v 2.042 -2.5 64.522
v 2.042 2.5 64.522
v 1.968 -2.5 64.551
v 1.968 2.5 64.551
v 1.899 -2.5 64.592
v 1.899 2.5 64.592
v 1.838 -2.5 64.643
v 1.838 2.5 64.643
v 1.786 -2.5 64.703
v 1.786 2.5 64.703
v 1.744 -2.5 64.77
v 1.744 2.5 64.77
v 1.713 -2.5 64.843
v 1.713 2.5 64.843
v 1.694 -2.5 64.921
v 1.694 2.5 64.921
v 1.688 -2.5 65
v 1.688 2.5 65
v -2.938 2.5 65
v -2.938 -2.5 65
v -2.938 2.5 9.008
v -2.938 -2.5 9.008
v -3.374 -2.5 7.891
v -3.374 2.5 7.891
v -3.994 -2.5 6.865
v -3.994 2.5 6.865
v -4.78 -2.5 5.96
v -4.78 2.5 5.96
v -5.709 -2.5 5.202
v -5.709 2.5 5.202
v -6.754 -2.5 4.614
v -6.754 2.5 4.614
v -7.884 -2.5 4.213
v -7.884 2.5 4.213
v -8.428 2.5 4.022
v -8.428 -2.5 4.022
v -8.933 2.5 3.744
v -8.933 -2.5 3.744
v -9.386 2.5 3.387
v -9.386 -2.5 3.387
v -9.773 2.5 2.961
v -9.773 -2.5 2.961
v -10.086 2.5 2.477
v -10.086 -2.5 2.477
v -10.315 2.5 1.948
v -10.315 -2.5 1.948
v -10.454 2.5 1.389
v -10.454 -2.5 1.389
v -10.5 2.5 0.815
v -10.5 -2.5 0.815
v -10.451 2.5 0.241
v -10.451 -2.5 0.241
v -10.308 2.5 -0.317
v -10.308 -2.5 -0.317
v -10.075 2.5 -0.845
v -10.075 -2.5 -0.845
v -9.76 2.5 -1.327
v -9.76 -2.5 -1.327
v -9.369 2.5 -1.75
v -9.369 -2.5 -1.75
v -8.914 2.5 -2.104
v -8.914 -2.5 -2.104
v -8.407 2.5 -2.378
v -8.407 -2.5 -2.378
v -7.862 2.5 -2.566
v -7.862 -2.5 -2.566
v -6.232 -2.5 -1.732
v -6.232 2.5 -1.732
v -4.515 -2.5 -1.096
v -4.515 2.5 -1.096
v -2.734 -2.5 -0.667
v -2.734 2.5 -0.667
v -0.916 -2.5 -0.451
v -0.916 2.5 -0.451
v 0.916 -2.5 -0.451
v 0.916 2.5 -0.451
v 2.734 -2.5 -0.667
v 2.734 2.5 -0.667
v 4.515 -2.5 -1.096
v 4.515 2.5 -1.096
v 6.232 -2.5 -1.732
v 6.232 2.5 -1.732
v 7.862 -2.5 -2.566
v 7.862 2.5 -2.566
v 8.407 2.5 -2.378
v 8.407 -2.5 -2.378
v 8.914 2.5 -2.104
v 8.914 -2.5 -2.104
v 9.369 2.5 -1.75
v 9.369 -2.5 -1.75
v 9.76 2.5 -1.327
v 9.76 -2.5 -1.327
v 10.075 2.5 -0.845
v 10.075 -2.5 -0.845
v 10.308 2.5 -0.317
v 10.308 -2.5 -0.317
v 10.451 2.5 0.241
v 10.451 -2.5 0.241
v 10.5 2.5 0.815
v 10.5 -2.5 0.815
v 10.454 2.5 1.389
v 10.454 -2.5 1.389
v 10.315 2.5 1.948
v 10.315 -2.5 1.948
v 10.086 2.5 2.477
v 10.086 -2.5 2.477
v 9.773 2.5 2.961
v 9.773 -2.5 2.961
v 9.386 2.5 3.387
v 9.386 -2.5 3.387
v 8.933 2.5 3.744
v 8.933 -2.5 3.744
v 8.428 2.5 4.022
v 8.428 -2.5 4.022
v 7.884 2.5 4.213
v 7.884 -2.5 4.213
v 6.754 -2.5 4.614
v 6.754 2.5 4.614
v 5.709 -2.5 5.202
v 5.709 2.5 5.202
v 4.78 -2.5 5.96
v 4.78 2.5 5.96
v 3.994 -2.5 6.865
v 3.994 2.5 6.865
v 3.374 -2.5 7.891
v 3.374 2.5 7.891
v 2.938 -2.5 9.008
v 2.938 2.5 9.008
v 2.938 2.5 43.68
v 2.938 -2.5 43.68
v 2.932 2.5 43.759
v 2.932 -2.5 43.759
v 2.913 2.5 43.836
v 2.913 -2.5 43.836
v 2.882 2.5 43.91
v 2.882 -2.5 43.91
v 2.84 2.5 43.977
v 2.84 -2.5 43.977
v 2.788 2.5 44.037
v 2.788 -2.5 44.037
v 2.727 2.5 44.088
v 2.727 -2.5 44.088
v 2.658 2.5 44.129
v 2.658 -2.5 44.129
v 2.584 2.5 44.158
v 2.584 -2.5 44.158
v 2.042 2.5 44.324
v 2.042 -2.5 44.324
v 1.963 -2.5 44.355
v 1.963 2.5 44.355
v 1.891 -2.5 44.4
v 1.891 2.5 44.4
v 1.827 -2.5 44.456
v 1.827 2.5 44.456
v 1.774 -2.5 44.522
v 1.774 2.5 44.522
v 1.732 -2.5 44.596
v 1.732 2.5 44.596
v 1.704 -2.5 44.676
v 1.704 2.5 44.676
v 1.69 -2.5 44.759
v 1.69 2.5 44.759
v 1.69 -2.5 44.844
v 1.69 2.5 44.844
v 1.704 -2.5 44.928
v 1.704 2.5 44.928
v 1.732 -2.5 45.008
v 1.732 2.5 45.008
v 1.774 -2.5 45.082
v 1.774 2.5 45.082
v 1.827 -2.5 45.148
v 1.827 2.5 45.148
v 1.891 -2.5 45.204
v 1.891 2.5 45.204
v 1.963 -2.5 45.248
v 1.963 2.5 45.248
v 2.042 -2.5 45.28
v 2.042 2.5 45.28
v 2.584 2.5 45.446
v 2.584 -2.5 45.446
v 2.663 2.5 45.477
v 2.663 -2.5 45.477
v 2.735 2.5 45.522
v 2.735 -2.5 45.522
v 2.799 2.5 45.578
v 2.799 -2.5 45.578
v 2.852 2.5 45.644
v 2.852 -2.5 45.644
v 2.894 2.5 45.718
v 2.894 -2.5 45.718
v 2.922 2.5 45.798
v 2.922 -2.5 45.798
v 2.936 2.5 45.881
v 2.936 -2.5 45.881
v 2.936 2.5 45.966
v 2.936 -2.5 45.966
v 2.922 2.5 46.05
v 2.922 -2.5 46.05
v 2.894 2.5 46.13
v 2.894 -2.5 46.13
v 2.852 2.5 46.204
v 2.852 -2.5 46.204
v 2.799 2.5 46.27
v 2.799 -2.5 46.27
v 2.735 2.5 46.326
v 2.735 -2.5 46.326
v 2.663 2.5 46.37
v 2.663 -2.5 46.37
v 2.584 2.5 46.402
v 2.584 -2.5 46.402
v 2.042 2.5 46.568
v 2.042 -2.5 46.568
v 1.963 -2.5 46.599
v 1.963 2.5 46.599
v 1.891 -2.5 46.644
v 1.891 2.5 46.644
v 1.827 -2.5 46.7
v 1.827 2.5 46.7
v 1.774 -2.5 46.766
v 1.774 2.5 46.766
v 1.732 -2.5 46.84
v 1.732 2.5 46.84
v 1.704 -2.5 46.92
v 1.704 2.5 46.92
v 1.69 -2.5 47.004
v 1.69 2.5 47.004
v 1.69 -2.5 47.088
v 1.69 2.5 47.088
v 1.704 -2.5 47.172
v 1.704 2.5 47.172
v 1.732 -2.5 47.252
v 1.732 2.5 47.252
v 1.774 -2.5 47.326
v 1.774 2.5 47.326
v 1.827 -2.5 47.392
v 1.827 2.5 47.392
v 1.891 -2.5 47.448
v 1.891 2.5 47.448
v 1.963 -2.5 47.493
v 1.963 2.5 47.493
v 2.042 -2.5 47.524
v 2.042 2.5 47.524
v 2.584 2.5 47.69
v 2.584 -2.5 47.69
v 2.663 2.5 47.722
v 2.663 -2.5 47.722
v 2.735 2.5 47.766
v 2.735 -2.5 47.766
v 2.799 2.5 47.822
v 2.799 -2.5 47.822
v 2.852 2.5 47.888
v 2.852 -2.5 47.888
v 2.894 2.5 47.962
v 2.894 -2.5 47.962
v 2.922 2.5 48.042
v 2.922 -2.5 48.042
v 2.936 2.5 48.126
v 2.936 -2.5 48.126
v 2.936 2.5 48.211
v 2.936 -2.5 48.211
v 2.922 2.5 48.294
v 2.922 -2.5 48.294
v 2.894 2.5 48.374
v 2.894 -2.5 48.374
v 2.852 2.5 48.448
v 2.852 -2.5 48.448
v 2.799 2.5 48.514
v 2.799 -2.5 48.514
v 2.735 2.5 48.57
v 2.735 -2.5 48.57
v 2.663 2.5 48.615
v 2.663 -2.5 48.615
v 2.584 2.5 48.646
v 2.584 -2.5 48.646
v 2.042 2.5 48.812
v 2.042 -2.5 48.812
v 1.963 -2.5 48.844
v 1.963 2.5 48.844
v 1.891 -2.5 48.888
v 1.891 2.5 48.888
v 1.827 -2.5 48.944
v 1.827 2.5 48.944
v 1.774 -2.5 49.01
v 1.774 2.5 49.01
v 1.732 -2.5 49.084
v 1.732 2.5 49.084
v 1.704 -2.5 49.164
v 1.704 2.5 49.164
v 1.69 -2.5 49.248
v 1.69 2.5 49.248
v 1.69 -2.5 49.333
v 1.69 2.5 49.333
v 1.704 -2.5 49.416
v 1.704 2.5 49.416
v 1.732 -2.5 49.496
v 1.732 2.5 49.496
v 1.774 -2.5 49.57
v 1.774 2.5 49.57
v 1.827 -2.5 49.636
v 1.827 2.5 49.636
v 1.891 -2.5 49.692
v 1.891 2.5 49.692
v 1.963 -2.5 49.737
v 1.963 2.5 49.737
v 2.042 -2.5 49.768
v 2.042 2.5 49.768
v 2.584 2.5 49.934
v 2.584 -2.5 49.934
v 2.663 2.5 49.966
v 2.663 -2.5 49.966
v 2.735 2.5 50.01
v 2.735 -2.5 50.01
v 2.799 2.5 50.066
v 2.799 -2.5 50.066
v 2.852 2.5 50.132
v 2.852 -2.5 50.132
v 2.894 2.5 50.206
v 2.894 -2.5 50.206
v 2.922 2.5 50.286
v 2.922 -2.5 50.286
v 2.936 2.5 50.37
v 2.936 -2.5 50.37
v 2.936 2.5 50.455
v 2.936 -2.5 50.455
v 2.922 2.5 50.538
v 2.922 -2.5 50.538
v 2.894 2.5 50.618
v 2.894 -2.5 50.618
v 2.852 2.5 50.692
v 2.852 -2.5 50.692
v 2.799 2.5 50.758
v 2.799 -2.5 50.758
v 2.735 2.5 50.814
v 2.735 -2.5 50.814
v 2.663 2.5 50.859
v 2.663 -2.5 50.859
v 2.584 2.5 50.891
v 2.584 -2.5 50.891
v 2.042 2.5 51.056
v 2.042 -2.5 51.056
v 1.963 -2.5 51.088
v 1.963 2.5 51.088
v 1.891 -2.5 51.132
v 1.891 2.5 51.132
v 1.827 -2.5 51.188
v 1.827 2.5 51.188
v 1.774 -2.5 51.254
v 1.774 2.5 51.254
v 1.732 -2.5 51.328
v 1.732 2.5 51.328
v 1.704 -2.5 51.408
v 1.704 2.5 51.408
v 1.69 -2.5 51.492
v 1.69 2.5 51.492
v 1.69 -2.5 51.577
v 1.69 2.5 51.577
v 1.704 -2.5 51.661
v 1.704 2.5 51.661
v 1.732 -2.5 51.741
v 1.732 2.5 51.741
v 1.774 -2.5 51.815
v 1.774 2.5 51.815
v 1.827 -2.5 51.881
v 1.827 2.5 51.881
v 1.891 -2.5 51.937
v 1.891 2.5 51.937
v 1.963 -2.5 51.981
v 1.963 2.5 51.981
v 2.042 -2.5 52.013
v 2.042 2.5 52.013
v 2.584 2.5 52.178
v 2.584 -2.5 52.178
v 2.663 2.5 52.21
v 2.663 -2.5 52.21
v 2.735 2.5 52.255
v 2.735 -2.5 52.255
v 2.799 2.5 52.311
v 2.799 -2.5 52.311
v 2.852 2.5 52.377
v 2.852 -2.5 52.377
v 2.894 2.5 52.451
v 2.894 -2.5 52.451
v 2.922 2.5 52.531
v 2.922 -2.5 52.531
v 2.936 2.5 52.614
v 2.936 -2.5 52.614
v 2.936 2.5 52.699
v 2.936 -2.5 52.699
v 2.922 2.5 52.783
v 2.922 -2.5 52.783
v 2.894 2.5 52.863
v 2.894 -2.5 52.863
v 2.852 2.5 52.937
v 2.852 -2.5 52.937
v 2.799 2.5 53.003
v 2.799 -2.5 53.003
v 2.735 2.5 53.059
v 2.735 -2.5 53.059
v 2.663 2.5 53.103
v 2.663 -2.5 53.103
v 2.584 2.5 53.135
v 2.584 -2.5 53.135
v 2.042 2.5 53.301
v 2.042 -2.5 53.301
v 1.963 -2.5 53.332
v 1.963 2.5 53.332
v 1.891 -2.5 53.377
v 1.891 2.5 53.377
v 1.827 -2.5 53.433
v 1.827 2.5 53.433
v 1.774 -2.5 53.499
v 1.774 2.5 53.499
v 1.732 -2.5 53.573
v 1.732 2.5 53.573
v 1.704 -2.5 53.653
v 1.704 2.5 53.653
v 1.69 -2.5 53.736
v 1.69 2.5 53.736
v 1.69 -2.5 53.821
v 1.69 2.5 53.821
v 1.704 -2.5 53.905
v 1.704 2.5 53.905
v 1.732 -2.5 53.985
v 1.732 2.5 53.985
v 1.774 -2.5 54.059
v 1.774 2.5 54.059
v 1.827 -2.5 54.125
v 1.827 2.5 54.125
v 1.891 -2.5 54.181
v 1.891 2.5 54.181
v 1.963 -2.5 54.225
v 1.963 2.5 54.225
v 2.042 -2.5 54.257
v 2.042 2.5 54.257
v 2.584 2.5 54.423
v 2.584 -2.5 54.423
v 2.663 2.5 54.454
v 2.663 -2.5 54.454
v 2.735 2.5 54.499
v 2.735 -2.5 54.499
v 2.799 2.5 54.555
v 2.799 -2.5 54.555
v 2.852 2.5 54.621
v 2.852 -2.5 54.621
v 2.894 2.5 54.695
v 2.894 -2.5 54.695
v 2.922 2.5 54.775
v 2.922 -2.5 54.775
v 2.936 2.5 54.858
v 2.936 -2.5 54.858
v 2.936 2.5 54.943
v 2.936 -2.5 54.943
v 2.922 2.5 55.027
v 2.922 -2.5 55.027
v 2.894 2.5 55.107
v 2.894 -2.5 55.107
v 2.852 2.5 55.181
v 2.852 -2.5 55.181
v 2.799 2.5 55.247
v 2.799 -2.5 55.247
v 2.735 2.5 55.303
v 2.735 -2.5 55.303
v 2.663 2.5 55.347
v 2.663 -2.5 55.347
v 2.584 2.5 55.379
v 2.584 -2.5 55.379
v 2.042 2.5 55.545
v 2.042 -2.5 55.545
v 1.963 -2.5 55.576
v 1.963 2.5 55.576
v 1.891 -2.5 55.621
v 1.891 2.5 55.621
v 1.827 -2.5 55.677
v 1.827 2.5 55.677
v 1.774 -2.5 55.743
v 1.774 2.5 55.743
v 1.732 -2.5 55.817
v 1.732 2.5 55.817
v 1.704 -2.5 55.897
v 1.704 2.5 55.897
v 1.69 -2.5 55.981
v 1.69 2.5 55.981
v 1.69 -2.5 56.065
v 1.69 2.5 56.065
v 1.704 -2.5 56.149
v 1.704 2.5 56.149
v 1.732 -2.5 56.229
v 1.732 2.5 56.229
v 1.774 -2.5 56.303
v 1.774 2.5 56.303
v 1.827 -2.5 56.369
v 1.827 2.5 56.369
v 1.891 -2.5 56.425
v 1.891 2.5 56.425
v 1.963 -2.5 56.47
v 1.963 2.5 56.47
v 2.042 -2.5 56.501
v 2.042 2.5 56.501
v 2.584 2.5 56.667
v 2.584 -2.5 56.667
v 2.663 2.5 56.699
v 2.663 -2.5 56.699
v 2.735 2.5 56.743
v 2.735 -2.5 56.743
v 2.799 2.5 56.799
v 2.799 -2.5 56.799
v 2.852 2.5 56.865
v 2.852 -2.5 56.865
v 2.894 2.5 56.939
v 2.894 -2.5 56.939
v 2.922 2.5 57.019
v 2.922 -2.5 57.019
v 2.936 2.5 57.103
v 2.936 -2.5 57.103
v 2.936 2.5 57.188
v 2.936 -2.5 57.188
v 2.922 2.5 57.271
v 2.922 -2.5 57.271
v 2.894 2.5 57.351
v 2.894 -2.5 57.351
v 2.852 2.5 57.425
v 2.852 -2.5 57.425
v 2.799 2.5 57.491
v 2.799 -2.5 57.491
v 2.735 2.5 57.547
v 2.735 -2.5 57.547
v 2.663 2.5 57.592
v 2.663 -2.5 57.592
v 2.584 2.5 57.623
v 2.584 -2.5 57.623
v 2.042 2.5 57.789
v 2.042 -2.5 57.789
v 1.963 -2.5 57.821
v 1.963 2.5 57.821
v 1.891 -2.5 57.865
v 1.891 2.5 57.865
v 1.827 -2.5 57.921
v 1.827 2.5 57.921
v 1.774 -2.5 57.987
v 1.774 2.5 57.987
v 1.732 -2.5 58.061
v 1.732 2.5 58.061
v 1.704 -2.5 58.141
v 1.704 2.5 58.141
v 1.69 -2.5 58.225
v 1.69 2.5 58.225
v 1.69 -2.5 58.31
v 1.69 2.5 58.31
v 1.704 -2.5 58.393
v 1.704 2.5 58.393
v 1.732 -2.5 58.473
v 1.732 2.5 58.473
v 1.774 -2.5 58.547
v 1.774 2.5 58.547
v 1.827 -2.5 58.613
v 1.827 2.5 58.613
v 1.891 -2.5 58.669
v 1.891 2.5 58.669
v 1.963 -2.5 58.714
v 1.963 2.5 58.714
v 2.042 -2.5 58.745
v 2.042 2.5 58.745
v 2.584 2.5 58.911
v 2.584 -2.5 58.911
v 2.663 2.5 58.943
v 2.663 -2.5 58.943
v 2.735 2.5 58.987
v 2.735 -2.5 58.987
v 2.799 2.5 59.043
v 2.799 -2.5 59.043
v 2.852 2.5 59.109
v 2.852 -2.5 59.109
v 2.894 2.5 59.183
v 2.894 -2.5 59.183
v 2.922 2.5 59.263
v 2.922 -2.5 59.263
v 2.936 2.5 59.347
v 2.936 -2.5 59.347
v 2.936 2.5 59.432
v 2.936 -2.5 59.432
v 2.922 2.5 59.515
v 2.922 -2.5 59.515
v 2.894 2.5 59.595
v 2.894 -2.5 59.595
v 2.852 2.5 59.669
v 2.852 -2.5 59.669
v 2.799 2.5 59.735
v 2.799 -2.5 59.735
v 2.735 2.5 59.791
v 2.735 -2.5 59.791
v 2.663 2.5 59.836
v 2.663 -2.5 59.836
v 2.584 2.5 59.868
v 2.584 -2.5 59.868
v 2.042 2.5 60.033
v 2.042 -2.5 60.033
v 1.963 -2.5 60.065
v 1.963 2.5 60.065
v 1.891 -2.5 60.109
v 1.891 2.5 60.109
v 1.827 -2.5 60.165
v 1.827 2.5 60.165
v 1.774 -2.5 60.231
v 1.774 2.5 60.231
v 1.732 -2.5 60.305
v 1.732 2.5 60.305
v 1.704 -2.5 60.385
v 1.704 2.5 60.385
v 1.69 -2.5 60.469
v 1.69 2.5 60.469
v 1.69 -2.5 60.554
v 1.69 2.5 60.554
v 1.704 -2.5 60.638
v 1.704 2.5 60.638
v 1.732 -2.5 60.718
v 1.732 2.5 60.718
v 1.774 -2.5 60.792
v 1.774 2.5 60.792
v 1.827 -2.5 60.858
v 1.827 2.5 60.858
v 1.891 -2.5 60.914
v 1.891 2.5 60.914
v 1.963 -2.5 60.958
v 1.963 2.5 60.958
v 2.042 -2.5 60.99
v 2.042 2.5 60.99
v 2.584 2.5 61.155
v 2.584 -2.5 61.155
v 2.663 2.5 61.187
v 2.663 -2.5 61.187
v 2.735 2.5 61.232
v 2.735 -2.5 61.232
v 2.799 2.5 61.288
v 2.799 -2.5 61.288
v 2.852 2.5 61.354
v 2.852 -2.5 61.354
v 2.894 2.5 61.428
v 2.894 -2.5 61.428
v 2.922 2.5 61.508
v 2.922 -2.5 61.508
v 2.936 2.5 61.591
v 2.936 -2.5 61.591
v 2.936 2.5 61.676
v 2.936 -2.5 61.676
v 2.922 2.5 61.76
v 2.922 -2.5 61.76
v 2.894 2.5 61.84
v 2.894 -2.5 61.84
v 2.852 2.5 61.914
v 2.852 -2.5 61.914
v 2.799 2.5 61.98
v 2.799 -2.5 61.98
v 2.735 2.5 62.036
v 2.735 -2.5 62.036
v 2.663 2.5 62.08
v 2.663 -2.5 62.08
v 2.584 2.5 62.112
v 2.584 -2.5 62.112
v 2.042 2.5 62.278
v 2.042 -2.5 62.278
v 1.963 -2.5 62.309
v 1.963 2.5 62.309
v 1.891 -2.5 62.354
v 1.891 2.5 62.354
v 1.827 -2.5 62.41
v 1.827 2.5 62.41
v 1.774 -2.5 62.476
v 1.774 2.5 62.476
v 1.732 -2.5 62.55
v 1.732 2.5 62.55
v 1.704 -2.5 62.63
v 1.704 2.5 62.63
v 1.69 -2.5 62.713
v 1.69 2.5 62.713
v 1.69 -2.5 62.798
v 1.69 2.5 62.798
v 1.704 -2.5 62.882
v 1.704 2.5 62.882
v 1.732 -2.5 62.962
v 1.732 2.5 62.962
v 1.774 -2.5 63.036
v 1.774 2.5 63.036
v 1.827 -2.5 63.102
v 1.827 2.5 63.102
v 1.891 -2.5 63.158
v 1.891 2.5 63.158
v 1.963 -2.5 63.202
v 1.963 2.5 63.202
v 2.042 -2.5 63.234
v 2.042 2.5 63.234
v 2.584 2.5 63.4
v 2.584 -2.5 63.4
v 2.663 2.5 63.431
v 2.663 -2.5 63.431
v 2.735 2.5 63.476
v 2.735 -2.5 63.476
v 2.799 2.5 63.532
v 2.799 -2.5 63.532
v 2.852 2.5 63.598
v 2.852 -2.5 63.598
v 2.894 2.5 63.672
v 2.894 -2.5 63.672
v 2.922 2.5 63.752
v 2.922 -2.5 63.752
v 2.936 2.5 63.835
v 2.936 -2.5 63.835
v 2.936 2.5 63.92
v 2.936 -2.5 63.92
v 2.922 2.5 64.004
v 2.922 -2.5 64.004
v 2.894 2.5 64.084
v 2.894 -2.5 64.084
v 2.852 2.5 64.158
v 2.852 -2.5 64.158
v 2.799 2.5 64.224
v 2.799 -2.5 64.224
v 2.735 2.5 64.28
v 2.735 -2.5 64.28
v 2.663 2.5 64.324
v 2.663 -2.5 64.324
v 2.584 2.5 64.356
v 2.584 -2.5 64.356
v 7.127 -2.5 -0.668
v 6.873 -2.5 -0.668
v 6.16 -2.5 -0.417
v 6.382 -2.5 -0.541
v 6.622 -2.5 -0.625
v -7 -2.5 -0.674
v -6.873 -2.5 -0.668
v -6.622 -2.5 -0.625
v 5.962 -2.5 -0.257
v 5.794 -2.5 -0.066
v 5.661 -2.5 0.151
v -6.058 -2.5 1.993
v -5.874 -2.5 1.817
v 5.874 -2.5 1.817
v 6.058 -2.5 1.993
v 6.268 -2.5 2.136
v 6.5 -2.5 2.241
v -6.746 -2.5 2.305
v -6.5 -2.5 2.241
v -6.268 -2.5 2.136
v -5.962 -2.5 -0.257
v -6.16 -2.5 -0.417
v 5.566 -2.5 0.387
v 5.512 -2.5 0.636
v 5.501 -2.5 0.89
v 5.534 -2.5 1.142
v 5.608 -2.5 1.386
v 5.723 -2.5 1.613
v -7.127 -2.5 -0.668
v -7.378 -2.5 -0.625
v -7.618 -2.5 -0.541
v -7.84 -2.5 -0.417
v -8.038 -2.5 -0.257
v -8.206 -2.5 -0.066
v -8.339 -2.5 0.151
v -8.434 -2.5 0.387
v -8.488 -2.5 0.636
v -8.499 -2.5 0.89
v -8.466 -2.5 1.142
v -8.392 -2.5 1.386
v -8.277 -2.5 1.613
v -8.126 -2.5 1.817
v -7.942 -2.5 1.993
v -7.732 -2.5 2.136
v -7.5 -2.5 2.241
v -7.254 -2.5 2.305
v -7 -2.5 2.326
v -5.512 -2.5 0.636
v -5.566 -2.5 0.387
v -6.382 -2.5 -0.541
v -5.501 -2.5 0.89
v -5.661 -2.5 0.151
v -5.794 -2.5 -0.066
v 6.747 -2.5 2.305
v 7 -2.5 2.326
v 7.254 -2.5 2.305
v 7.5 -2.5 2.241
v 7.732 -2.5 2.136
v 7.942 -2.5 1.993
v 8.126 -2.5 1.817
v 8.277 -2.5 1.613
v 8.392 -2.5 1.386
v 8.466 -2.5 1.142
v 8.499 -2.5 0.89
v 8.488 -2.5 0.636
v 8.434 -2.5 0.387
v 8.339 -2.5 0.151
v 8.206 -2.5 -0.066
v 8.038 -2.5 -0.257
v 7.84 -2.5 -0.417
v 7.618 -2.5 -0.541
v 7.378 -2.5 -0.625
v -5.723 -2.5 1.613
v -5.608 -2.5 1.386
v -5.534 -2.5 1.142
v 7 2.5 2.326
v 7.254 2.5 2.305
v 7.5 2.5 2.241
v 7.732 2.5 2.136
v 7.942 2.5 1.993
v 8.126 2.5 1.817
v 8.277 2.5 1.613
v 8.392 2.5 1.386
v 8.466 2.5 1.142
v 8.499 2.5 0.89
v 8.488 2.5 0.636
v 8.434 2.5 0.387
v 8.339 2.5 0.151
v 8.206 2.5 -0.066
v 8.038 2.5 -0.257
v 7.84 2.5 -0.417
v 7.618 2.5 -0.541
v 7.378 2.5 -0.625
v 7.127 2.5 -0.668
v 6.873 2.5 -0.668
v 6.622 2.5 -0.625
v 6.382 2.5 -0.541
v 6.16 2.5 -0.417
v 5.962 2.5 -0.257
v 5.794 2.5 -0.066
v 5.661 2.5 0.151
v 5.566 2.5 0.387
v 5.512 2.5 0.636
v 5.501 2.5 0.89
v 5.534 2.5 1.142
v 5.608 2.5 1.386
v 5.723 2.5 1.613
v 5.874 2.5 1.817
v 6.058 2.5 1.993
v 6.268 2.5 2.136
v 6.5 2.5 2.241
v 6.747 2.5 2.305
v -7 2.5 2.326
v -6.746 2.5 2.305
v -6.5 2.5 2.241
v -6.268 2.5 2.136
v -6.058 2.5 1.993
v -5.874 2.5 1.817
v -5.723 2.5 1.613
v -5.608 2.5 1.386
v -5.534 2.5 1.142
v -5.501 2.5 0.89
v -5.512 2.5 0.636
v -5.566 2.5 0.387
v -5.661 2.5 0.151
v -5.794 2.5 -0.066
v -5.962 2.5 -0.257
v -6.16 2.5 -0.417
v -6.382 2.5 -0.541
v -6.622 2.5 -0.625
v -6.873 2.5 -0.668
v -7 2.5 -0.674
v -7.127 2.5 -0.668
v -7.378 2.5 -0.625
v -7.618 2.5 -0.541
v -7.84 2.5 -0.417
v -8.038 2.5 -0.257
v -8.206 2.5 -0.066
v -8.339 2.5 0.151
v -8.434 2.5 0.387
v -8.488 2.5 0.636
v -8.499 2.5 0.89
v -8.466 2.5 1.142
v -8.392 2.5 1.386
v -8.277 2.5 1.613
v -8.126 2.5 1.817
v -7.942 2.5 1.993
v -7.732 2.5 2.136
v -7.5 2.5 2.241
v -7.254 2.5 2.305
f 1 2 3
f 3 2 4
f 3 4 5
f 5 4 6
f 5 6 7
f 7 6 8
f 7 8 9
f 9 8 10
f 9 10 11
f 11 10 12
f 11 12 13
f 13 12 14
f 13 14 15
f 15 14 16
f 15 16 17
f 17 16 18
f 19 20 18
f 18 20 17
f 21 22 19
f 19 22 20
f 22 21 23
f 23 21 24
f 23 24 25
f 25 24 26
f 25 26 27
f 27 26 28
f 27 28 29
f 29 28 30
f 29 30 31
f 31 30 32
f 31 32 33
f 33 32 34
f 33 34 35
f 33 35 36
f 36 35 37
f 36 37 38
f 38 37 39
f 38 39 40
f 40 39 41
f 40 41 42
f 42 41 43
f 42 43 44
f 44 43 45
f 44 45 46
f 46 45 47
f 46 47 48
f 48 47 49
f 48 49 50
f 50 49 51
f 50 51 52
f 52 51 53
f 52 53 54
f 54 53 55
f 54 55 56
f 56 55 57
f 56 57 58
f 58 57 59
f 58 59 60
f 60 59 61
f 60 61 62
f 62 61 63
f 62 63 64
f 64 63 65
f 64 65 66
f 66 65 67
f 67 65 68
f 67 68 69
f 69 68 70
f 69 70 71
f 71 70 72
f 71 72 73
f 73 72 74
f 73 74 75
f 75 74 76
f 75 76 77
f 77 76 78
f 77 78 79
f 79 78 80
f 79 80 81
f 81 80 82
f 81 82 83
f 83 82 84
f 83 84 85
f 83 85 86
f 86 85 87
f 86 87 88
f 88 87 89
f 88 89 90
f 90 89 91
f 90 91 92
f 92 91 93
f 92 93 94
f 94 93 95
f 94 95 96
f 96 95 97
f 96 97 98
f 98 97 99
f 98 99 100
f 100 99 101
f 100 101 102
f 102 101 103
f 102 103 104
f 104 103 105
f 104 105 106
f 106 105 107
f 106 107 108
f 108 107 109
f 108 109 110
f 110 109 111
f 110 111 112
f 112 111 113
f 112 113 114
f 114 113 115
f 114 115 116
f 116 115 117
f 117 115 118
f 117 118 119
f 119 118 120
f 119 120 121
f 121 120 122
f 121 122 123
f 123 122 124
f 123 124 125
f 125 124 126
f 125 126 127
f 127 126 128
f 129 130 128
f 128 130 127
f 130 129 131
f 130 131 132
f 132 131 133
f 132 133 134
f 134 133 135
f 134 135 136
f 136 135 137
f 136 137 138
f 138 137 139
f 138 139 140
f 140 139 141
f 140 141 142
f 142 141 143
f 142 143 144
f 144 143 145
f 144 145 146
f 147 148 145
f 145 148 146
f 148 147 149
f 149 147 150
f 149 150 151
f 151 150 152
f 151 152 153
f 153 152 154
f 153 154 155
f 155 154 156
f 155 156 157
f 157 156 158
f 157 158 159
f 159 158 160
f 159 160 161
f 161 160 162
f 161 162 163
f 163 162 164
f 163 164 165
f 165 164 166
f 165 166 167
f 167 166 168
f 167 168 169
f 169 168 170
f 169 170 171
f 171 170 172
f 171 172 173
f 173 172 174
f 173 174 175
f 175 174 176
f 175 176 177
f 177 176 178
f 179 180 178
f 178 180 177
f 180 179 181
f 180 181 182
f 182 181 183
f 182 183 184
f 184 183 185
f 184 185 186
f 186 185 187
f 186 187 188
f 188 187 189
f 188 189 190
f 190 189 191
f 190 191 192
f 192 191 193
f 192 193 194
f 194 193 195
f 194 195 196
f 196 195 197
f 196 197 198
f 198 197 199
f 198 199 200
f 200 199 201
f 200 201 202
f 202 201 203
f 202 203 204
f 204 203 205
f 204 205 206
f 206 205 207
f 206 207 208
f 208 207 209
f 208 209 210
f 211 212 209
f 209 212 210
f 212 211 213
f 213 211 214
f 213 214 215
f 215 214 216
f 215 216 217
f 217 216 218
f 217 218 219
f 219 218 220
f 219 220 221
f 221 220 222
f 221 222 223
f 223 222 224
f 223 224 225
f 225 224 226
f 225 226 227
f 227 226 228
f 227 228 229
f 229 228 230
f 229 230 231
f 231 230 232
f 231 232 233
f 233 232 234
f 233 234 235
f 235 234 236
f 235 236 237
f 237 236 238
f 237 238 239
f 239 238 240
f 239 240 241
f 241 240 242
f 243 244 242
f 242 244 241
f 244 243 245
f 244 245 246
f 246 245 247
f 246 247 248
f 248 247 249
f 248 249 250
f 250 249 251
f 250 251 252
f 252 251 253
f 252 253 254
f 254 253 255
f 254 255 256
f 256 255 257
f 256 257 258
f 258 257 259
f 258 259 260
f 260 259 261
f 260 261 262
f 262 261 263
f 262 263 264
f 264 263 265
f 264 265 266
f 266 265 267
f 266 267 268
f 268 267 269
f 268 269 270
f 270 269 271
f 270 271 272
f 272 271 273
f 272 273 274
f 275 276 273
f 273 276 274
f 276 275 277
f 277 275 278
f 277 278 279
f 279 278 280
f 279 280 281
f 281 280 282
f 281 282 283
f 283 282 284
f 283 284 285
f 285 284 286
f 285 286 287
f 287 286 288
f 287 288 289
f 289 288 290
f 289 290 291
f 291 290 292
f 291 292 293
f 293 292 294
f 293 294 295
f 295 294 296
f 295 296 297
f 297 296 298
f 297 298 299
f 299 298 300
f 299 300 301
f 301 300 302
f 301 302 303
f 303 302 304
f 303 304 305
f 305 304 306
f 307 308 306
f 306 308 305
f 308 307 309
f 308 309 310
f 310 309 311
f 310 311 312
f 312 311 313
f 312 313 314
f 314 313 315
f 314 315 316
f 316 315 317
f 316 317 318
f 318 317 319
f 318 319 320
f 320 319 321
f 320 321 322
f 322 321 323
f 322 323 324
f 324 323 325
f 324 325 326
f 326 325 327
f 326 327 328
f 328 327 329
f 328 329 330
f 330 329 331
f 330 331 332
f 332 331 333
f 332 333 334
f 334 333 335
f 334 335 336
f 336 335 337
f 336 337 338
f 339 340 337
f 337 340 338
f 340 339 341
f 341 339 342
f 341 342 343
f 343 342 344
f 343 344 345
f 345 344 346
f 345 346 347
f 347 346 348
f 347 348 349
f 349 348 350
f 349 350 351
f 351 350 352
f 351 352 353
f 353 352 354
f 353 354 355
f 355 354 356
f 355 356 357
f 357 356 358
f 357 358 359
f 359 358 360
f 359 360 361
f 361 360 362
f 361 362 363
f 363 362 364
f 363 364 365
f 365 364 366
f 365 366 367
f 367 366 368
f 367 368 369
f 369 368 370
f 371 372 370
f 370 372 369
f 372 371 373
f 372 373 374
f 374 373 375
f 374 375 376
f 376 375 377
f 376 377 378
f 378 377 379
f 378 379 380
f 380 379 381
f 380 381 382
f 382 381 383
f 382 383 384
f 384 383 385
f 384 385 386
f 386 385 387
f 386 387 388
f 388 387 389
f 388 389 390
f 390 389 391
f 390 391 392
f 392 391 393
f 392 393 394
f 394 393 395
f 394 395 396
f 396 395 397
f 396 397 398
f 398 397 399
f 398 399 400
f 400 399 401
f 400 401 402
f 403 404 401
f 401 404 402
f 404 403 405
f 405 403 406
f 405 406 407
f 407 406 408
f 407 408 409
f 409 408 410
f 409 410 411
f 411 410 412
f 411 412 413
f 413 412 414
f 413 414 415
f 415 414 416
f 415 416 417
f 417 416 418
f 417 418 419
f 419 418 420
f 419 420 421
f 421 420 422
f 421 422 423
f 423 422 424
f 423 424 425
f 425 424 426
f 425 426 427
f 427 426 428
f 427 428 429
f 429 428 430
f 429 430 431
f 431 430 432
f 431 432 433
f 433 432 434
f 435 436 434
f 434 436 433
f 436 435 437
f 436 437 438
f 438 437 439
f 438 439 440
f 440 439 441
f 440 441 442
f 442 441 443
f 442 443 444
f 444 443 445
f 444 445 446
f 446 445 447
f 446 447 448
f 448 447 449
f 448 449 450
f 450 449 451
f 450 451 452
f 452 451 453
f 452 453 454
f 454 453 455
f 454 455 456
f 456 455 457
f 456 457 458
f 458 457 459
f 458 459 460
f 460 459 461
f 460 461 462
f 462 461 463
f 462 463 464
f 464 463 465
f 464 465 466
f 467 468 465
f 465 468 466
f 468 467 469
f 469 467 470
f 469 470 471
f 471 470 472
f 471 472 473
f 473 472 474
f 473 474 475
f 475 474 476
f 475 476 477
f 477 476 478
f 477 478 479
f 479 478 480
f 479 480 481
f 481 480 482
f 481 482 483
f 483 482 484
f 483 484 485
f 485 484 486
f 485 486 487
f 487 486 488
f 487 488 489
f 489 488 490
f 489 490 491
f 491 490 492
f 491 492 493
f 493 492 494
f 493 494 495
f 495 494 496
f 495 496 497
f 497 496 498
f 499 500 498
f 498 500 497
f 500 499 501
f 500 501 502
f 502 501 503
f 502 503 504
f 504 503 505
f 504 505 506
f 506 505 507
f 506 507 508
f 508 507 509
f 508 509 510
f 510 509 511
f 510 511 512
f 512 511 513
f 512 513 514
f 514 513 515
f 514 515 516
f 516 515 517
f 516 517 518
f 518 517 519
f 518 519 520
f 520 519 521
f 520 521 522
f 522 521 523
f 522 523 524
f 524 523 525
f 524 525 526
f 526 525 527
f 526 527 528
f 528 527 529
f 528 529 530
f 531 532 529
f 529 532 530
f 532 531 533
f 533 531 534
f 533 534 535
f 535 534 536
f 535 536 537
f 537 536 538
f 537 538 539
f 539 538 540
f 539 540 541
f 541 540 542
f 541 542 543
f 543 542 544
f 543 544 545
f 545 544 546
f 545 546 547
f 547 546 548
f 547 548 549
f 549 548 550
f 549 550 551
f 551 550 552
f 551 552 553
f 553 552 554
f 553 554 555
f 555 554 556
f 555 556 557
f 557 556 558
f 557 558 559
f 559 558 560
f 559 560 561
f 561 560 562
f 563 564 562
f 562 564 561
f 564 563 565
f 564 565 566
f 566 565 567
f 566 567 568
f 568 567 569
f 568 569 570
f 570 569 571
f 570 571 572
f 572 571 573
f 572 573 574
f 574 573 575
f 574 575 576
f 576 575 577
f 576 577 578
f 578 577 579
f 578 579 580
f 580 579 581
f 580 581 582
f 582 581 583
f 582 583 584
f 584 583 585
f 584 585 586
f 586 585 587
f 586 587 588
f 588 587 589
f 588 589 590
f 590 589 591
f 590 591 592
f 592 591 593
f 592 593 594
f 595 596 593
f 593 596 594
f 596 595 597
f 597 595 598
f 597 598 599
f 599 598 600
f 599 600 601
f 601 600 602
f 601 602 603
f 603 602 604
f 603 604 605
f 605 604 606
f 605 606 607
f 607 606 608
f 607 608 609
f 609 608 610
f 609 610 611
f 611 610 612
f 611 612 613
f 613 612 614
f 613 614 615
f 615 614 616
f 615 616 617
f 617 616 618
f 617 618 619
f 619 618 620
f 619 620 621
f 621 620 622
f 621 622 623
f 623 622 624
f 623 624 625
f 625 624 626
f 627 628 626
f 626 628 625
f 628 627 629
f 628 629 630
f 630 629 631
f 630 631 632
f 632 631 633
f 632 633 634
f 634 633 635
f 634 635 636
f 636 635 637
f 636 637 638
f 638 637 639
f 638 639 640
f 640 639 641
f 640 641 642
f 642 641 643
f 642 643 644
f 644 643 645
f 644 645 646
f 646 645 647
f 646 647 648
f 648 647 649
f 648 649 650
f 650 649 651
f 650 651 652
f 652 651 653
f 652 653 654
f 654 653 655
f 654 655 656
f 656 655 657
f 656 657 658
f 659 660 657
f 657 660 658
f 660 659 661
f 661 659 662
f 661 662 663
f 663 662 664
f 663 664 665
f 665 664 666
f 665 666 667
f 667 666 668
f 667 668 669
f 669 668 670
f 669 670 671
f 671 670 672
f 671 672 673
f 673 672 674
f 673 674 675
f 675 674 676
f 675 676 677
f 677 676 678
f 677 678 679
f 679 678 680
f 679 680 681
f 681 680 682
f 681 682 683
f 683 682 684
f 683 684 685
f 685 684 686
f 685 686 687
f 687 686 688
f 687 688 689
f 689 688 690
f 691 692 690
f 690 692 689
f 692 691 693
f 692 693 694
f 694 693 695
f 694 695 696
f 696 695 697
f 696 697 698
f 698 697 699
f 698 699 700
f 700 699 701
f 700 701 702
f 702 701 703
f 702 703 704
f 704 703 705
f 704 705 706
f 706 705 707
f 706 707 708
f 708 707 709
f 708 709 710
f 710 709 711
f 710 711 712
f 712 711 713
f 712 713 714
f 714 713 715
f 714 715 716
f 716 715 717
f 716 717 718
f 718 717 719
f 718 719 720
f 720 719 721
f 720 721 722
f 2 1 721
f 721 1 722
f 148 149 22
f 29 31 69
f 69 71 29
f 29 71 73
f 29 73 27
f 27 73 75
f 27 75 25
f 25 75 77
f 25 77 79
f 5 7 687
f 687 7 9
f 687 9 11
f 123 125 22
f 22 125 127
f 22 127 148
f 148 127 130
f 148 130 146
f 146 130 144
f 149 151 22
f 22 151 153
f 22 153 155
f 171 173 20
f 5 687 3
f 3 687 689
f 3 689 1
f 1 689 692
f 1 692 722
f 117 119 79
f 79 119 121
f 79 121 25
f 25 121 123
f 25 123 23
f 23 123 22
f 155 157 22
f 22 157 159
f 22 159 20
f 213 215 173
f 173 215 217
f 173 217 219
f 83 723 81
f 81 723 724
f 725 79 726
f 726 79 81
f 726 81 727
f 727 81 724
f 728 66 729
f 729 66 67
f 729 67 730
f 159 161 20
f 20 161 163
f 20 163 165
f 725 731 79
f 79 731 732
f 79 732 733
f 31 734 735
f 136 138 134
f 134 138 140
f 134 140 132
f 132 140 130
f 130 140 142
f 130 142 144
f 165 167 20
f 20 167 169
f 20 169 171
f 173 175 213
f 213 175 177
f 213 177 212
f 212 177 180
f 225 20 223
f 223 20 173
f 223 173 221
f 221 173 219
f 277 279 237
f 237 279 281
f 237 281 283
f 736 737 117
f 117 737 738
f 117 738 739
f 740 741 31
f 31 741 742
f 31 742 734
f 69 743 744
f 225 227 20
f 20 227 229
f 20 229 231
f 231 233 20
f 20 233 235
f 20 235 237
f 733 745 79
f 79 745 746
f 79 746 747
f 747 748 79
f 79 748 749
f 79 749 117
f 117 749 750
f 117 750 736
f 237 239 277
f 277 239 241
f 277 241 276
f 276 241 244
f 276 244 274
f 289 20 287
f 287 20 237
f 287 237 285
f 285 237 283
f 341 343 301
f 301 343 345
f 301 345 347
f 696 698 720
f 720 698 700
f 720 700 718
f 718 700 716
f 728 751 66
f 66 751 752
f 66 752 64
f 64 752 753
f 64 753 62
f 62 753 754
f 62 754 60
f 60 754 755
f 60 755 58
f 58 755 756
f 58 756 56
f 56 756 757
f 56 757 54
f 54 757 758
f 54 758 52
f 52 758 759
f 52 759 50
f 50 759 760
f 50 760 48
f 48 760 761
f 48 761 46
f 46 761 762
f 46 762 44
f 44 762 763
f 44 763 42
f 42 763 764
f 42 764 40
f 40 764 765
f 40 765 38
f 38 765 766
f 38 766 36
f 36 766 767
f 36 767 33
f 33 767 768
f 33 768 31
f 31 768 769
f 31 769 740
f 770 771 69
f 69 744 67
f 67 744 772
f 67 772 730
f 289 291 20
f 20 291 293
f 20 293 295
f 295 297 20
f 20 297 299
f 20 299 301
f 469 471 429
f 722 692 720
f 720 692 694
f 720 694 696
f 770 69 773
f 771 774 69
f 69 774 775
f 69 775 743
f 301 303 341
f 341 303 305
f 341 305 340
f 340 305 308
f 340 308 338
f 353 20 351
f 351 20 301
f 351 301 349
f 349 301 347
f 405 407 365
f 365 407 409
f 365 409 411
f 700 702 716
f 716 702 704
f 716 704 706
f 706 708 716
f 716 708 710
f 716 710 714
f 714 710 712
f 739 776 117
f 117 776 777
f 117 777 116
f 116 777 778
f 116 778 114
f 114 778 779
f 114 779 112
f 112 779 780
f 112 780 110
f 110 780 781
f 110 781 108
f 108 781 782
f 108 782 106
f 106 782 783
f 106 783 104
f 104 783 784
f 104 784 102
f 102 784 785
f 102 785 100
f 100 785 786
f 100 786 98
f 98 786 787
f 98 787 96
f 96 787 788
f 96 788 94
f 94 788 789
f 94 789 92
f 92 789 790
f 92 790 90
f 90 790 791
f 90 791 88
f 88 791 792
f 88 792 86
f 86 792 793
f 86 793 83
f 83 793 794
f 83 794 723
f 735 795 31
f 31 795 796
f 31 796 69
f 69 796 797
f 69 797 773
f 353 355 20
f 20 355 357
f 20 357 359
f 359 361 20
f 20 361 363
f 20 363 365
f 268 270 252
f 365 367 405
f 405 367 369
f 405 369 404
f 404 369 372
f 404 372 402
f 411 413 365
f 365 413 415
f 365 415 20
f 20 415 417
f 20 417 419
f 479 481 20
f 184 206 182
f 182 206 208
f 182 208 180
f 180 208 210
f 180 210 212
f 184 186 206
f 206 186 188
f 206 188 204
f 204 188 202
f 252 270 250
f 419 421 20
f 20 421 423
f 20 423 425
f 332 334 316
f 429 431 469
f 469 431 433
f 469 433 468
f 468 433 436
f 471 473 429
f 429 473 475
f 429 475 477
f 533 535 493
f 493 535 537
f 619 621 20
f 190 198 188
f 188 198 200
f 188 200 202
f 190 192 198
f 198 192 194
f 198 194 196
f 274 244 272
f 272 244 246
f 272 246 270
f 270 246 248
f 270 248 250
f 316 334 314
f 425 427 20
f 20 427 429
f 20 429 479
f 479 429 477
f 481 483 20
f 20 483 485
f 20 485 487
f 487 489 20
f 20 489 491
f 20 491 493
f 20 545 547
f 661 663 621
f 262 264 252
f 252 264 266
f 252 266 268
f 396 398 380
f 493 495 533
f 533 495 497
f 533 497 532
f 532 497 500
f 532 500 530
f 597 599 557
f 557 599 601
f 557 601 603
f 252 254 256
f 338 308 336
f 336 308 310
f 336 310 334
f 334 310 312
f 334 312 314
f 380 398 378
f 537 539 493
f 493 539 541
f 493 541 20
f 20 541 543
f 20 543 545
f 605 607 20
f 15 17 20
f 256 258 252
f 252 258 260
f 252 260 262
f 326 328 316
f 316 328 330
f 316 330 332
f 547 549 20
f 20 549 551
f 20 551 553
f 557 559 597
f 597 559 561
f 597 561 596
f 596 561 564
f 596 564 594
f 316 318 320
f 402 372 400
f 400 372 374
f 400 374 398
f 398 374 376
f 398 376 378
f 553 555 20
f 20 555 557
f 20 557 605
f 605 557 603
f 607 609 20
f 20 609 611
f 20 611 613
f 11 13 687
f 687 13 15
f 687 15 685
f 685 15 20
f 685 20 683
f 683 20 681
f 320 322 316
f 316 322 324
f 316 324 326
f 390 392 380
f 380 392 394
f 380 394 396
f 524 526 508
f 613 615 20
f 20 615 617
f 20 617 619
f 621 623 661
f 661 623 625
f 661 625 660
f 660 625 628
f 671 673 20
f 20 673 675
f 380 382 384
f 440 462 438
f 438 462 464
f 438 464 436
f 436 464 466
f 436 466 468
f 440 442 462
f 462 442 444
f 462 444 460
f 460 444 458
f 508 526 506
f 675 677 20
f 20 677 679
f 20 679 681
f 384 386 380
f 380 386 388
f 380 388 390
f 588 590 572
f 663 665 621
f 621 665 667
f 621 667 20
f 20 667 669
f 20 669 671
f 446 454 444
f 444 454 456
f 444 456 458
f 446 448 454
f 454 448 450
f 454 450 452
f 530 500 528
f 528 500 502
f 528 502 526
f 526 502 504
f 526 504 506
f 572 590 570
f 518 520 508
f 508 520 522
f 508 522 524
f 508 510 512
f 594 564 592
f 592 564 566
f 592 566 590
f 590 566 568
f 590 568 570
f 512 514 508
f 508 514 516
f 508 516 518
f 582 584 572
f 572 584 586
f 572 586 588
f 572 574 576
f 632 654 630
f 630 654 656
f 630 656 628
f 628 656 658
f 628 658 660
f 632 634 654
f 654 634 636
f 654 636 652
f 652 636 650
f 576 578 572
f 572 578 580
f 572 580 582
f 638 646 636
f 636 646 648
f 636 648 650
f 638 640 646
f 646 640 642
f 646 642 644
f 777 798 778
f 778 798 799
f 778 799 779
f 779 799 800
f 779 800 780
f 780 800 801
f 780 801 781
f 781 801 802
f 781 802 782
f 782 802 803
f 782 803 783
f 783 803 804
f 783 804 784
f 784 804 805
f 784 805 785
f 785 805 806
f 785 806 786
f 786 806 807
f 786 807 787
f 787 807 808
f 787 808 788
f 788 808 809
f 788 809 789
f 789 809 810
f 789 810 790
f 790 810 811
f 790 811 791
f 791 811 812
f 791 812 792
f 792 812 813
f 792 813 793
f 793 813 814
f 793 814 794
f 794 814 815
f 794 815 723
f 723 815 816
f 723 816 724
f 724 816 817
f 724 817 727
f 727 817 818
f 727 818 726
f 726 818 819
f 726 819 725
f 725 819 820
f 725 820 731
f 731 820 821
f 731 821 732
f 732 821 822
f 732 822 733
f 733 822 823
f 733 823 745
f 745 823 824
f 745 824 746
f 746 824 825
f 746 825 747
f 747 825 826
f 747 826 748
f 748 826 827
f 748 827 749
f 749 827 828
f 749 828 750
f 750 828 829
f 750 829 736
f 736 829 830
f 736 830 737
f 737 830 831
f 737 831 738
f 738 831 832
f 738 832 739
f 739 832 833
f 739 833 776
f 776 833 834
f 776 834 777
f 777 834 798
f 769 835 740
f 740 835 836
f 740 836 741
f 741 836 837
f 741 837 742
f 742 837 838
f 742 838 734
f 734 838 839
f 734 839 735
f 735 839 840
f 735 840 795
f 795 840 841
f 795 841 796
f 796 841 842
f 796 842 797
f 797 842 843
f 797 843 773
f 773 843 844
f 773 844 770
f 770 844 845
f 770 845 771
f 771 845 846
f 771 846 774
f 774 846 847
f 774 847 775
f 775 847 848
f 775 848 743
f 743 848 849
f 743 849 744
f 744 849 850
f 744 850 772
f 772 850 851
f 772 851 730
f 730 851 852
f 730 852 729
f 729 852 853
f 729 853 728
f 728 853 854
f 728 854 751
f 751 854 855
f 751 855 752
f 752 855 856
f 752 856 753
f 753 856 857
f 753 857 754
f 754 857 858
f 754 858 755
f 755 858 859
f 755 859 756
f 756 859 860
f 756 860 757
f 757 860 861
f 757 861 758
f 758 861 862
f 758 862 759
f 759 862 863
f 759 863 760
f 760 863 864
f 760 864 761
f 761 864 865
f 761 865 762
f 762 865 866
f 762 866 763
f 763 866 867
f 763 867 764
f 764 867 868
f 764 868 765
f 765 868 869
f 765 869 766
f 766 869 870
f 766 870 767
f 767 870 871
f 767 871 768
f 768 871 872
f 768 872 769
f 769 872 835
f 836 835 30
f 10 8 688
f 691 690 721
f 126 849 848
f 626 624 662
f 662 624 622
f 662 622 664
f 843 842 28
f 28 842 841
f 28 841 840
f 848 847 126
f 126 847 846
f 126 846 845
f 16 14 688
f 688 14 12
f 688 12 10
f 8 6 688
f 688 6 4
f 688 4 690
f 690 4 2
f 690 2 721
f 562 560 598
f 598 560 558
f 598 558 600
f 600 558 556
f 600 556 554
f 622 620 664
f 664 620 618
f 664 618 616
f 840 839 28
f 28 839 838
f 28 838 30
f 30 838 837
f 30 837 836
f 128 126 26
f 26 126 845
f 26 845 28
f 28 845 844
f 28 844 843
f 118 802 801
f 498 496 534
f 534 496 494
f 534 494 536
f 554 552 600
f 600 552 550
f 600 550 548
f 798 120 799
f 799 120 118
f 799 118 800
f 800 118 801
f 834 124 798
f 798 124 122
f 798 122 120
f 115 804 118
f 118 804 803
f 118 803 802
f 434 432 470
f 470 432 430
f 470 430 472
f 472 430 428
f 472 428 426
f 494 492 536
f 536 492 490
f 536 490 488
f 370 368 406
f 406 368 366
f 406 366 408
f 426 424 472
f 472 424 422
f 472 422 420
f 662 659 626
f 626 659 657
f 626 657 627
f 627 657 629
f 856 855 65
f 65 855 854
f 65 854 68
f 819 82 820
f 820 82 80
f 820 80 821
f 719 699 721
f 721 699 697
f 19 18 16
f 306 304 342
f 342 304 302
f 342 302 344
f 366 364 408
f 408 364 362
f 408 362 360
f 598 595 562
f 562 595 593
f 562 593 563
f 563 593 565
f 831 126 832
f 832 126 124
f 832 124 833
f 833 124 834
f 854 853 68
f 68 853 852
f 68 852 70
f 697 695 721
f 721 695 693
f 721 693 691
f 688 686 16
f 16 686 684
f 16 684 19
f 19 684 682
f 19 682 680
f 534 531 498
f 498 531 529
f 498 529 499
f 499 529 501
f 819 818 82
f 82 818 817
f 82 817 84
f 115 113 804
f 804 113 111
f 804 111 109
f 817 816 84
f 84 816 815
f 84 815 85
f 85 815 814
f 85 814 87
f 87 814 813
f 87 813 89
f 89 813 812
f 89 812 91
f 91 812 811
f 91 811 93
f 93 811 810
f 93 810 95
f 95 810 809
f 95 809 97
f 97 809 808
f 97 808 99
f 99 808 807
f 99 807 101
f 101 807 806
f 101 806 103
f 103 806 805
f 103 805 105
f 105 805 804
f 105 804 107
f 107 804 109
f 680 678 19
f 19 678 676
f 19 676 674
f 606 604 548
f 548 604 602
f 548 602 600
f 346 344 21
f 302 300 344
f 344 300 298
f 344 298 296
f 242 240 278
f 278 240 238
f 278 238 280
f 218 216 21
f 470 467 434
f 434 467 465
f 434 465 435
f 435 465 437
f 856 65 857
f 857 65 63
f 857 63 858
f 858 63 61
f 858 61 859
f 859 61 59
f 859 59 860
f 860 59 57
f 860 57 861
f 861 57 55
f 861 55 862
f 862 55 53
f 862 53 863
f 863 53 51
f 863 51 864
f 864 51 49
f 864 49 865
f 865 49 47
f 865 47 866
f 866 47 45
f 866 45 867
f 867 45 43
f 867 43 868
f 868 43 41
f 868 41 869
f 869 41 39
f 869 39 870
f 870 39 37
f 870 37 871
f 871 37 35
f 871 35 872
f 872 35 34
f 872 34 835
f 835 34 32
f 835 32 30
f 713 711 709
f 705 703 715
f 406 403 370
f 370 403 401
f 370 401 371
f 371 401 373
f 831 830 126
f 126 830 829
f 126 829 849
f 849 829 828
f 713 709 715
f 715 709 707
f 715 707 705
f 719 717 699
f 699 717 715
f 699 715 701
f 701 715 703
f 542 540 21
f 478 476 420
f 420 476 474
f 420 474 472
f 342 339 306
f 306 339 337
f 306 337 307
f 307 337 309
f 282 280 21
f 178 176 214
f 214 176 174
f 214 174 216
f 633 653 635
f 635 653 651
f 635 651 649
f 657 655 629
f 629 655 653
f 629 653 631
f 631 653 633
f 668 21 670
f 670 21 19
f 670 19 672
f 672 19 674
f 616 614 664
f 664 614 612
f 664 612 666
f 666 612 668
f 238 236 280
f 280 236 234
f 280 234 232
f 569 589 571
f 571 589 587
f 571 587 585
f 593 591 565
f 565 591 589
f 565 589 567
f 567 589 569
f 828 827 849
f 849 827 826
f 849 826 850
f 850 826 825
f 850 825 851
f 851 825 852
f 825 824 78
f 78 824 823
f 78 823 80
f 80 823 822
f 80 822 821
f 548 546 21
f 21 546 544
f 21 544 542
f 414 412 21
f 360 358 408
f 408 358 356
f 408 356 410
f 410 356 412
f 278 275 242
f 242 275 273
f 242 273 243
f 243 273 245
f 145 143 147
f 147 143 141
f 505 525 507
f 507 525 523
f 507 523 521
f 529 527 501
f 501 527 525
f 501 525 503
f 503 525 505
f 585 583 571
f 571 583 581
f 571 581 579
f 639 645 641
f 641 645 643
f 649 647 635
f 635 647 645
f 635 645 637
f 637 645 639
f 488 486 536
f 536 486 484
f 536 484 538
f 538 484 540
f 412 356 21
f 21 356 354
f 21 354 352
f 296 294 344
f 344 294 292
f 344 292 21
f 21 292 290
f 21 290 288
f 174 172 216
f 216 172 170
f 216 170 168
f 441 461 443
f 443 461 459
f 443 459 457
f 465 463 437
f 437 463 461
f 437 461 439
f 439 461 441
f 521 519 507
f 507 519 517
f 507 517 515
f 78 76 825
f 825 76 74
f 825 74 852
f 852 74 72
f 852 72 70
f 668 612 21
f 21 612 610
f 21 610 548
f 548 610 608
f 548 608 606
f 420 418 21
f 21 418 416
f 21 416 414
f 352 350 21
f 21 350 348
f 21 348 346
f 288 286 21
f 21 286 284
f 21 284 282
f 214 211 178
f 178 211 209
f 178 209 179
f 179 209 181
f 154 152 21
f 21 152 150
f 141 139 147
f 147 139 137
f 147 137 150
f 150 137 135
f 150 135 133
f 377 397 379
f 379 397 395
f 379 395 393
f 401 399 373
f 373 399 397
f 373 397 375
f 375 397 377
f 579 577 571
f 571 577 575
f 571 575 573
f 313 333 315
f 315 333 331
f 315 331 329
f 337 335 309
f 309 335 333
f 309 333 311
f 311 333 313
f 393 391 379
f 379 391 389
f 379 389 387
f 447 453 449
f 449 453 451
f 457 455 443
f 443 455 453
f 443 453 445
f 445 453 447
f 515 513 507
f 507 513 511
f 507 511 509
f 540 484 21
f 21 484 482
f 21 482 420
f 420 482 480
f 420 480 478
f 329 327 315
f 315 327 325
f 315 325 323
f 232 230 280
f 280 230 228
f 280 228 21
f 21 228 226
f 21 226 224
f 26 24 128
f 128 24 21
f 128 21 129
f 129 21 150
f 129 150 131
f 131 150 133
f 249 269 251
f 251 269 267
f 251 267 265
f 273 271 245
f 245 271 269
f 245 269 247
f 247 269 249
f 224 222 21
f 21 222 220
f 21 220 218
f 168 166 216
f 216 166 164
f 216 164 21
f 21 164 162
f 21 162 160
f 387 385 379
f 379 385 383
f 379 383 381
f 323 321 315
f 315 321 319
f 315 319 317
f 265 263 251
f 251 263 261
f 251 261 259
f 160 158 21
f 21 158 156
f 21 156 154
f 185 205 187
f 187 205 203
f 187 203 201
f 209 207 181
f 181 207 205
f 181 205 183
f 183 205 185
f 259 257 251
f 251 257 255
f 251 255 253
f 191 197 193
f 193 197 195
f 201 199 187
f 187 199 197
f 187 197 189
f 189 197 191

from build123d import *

# Parameters (mm, degrees)
BOSS_EXTRU_1_DEPTH      = 2.5
BOSS_EXTRU_1_DEPTH_BACK = 2.5
ESQUISSE1_R             = 1.5


with BuildPart() as part:
    # Esquisse1 → Boss.-Extru.1 (new, two sides: drawn at the far end of the back side and taken through both)
    with BuildSketch(Plane(origin=(0, 0, 0), x_dir=(1, 0, 0), z_dir=(0, 1, 0)).offset(-BOSS_EXTRU_1_DEPTH_BACK)):
        with BuildLine():
            Line((1.688009203, -65), (-2.938009191, -65))
            Line((-2.938009191, -65), (-2.938009191, -9.008494736))
            ThreePointArc((-2.938009191, -9.008494736), (-4.78031572, -5.95992834), (-7.884337553, -4.212673672))
            ThreePointArc((-7.884337553, -4.212673672), (-10.499981587, -0.814885018), (-7.862349987, 2.565863566))
            ThreePointArc((-7.862349987, 2.565863566), (0, 0.423762079), (7.862349987, 2.565863566))
            ThreePointArc((7.862349987, 2.565863566), (10.499981587, -0.814885018), (7.884337553, -4.212673672))
            ThreePointArc((7.884337553, -4.212673672), (4.78031572, -5.95992834), (2.938009191, -9.008494736))
            Line((2.938009191, -9.008494736), (2.938009191, -43.679635922))
            ThreePointArc((2.938009191, -43.679635922), (2.839937622, -43.977047315), (2.584195047, -44.1577883))
            Line((2.584195047, -44.1577883), (2.041823351, -44.323607971))
            ThreePointArc((2.041823351, -44.323607971), (1.688009203, -44.801760349), (2.041823351, -45.279912727))
            Line((2.041823351, -45.279912727), (2.584195044, -45.445732395))
            ThreePointArc((2.584195044, -45.445732395), (2.839937622, -45.626473379), (2.938009191, -45.923884773))
            ThreePointArc((2.938009191, -45.923884773), (2.839937622, -46.221296165), (2.584195047, -46.40203715))
            Line((2.584195047, -46.40203715), (2.041823351, -46.567856821))
            ThreePointArc((2.041823351, -46.567856821), (1.688009203, -47.046009199), (2.041823351, -47.524161577))
            Line((2.041823351, -47.524161577), (2.584195044, -47.689981245))
            ThreePointArc((2.584195044, -47.689981245), (2.839937622, -47.870722229), (2.938009191, -48.168133623))
            ThreePointArc((2.938009191, -48.168133623), (2.839937622, -48.465545015), (2.584195047, -48.646286))
            Line((2.584195047, -48.646286), (2.041823351, -48.812105672))
            ThreePointArc((2.041823351, -48.812105672), (1.688009203, -49.290258049), (2.041823351, -49.768410427))
            Line((2.041823351, -49.768410427), (2.584195044, -49.934230095))
            ThreePointArc((2.584195044, -49.934230095), (2.839937622, -50.114971079), (2.938009191, -50.412382473))
            ThreePointArc((2.938009191, -50.412382473), (2.839937622, -50.709793865), (2.584195047, -50.89053485))
            Line((2.584195047, -50.89053485), (2.041823351, -51.056354522))
            ThreePointArc((2.041823351, -51.056354522), (1.688009203, -51.5345069), (2.041823351, -52.012659278))
            Line((2.041823351, -52.012659278), (2.584195044, -52.178478945))
            ThreePointArc((2.584195044, -52.178478945), (2.839937622, -52.359219929), (2.938009191, -52.656631323))
            ThreePointArc((2.938009191, -52.656631323), (2.839937622, -52.954042715), (2.584195047, -53.1347837))
            Line((2.584195047, -53.1347837), (2.041823351, -53.300603372))
            ThreePointArc((2.041823351, -53.300603372), (1.688009203, -53.77875575), (2.041823351, -54.256908128))
            Line((2.041823351, -54.256908128), (2.584195044, -54.422727795))
            ThreePointArc((2.584195044, -54.422727795), (2.839937622, -54.603468779), (2.938009191, -54.900880173))
            ThreePointArc((2.938009191, -54.900880173), (2.839937622, -55.198291565), (2.584195047, -55.37903255))
            Line((2.584195047, -55.37903255), (2.041823351, -55.544852222))
            ThreePointArc((2.041823351, -55.544852222), (1.688009203, -56.0230046), (2.041823351, -56.501156978))
            Line((2.041823351, -56.501156978), (2.584195044, -56.666976645))
            ThreePointArc((2.584195044, -56.666976645), (2.839937622, -56.84771763), (2.938009191, -57.145129023))
            ThreePointArc((2.938009191, -57.145129023), (2.839937622, -57.442540415), (2.584195047, -57.6232814))
            Line((2.584195047, -57.6232814), (2.041823351, -57.789101072))
            ThreePointArc((2.041823351, -57.789101072), (1.688009203, -58.26725345), (2.041823351, -58.745405828))
            Line((2.041823351, -58.745405828), (2.584195044, -58.911225495))
            ThreePointArc((2.584195044, -58.911225495), (2.839937622, -59.09196648), (2.938009191, -59.389377873))
            ThreePointArc((2.938009191, -59.389377873), (2.839937622, -59.686789265), (2.584195047, -59.86753025))
            Line((2.584195047, -59.86753025), (2.041823351, -60.033349922))
            ThreePointArc((2.041823351, -60.033349922), (1.688009203, -60.5115023), (2.041823351, -60.989654678))
            Line((2.041823351, -60.989654678), (2.584195044, -61.155474345))
            ThreePointArc((2.584195044, -61.155474345), (2.839937622, -61.33621533), (2.938009191, -61.633626723))
            ThreePointArc((2.938009191, -61.633626723), (2.839937622, -61.931038115), (2.584195047, -62.1117791))
            Line((2.584195047, -62.1117791), (2.041823351, -62.277598772))
            ThreePointArc((2.041823351, -62.277598772), (1.688009203, -62.75575115), (2.041823351, -63.233903528))
            Line((2.041823351, -63.233903528), (2.584195044, -63.399723195))
            ThreePointArc((2.584195044, -63.399723195), (2.839937622, -63.58046418), (2.938009191, -63.877875573))
            ThreePointArc((2.938009191, -63.877875573), (2.839937622, -64.175286965), (2.584195047, -64.35602795))
            Line((2.584195047, -64.35602795), (2.041823351, -64.521847622))
            ThreePointArc((2.041823351, -64.521847622), (1.786080773, -64.702588607), (1.688009203, -65))
        make_face()
        with Locations((7, -0.826237921)):
            Circle(ESQUISSE1_R, mode=Mode.SUBTRACT)
        with Locations((-7, -0.826237921)):
            Circle(ESQUISSE1_R, mode=Mode.SUBTRACT)
    extrude(amount=BOSS_EXTRU_1_DEPTH + BOSS_EXTRU_1_DEPTH_BACK)


solid = part.part
